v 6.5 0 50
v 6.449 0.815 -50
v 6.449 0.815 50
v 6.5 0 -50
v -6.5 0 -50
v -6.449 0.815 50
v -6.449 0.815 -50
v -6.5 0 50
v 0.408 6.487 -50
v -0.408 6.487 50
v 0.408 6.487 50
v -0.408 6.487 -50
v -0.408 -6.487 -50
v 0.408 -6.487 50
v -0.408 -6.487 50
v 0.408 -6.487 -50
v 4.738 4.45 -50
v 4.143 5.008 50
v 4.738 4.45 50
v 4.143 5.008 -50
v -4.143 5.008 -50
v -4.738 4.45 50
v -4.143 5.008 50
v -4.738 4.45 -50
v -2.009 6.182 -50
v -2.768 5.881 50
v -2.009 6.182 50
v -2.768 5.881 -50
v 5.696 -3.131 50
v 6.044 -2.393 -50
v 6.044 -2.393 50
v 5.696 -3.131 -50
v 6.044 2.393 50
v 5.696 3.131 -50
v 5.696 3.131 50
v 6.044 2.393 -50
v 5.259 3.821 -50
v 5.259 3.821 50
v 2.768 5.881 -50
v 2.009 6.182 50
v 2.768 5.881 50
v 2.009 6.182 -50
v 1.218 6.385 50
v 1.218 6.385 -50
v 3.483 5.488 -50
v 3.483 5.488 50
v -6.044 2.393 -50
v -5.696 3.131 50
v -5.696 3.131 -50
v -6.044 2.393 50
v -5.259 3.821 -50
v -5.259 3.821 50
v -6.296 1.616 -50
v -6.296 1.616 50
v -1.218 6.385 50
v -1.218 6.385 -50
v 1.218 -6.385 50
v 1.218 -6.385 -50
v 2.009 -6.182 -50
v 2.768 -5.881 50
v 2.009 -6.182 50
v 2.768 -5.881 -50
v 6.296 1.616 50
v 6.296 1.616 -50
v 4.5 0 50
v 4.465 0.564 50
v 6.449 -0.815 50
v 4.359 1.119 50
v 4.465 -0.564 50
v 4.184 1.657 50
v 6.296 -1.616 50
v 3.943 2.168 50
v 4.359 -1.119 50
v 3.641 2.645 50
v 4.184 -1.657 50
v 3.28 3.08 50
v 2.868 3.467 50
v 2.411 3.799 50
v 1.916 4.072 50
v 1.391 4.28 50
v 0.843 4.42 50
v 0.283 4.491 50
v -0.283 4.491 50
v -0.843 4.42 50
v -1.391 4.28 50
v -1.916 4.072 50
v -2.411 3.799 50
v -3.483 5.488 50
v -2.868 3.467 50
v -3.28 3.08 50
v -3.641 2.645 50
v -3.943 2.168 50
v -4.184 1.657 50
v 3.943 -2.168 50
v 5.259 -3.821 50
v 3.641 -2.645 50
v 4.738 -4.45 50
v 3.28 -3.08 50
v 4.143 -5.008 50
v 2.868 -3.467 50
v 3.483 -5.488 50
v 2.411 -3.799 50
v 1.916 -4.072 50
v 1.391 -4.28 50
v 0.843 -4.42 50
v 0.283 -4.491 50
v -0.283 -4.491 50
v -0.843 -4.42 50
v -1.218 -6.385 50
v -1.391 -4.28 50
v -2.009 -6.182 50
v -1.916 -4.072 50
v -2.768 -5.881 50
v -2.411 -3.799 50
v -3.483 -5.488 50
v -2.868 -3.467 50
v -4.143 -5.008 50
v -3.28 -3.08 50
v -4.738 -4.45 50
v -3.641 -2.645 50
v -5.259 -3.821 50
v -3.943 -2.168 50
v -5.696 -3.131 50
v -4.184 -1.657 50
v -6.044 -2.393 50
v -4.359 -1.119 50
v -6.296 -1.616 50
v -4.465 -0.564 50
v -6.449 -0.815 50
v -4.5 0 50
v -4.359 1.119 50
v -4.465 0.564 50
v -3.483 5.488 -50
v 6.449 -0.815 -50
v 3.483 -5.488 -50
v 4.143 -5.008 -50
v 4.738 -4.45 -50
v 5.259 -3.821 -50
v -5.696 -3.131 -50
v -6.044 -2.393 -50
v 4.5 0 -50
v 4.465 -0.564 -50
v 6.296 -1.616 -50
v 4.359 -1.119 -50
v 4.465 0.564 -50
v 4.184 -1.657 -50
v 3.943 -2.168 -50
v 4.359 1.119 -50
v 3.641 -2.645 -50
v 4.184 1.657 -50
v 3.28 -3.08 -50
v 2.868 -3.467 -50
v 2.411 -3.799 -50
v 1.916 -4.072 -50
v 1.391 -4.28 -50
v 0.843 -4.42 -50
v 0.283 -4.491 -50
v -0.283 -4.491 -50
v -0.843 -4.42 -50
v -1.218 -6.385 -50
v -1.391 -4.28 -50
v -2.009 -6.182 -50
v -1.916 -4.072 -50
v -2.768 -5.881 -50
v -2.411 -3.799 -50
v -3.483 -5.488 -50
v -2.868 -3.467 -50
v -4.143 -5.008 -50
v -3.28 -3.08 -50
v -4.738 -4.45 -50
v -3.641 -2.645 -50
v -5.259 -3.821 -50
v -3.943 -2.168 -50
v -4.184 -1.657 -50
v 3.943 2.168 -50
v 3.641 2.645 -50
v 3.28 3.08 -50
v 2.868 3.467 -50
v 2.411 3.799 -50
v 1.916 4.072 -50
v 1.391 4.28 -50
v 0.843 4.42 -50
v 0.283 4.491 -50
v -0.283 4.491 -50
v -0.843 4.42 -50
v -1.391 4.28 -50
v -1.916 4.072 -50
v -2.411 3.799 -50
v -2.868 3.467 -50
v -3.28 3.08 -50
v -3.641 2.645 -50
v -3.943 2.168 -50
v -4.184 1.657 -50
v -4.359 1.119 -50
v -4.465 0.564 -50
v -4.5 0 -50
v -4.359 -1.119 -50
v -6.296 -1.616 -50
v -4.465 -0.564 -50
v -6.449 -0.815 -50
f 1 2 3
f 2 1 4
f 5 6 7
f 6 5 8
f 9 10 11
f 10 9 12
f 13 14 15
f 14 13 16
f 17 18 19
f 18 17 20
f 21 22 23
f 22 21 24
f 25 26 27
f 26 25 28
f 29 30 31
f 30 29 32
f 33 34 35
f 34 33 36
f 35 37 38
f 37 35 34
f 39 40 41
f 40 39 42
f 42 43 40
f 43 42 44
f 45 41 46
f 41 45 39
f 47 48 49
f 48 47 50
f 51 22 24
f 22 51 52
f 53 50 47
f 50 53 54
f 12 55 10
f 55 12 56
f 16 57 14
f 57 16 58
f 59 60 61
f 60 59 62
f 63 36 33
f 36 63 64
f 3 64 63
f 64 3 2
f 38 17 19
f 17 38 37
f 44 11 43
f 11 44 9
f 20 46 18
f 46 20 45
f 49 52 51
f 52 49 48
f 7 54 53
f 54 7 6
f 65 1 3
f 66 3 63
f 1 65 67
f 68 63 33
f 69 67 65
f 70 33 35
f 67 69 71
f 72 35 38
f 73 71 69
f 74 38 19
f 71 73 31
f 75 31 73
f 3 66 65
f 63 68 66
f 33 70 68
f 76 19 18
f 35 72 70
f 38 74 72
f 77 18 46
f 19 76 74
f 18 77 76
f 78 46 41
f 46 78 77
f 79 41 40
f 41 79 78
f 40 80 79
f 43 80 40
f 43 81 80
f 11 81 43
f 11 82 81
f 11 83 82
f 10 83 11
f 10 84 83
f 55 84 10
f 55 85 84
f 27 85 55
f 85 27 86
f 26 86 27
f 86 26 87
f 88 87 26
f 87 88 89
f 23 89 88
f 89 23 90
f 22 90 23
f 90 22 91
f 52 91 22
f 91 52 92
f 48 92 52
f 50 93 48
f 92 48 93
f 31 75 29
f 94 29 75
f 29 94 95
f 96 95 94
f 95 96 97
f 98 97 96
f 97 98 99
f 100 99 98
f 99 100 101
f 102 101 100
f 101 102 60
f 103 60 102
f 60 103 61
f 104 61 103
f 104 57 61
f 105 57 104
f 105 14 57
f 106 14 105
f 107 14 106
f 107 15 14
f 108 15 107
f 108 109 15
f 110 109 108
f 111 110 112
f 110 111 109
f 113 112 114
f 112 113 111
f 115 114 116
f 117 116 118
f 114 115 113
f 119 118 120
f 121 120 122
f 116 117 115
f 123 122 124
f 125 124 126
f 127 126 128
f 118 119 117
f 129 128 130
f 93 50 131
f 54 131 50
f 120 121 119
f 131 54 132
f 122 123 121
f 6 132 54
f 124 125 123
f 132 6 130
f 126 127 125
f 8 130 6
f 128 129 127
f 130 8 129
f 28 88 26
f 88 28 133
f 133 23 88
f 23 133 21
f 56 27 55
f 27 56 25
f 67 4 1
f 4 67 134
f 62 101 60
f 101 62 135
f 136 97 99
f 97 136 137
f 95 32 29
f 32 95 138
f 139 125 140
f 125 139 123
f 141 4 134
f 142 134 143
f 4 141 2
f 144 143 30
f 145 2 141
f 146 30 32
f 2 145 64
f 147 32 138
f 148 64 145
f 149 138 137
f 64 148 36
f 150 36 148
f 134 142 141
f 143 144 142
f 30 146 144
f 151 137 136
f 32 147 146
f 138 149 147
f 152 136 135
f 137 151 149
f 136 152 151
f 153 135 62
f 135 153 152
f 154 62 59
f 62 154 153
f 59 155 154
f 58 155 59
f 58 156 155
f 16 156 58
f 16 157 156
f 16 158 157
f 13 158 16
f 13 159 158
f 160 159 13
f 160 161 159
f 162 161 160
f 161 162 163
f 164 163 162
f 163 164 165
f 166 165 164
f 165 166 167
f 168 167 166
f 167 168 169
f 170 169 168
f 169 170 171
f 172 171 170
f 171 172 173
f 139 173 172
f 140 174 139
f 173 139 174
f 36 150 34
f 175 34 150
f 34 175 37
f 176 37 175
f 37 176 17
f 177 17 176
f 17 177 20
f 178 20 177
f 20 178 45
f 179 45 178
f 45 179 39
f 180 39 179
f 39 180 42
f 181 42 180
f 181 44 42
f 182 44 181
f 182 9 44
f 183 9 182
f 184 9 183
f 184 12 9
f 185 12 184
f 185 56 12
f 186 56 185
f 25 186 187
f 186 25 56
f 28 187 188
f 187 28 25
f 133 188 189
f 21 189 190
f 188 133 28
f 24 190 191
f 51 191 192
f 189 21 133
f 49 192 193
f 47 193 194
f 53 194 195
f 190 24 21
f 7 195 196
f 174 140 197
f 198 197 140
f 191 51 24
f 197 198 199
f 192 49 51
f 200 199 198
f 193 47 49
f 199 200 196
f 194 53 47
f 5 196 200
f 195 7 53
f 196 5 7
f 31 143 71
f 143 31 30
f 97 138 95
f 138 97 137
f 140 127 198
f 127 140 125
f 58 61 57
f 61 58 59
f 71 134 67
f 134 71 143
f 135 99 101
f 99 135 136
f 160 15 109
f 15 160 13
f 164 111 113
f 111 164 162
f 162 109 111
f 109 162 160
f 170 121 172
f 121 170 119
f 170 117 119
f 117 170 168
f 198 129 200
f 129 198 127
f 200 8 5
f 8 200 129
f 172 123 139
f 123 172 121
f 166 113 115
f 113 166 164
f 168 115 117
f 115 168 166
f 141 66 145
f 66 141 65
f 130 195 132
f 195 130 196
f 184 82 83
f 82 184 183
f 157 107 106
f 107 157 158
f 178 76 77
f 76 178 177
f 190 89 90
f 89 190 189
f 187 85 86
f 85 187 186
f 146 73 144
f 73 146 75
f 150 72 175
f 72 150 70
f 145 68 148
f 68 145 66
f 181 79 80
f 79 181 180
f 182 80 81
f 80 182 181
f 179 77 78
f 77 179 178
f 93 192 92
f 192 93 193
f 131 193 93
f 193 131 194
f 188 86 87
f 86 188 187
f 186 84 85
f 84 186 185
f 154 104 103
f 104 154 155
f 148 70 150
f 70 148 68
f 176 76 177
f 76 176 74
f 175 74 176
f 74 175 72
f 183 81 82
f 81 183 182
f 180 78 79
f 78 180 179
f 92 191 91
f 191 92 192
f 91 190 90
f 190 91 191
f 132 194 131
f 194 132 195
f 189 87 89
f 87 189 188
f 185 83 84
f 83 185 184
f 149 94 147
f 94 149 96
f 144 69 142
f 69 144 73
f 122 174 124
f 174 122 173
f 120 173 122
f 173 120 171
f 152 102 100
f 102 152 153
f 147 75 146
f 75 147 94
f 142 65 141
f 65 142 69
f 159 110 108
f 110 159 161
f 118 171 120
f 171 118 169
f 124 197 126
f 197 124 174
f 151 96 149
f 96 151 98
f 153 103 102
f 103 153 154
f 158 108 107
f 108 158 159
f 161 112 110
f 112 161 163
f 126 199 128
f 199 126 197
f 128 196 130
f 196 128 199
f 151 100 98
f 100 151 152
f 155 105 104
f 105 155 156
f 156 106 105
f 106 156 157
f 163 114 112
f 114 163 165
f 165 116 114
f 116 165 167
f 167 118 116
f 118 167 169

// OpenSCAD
$fn = 50;


difference() {
	union() {
		translate(v = [0, 0, -50.0000000000]) {
			cylinder(h = 100, r = 6.5000000000);
		}
	}
	union() {
		translate(v = [0, 0, -100.0000000000]) {
			cylinder(h = 200, r = 4.5000000000);
		}
	}
}
